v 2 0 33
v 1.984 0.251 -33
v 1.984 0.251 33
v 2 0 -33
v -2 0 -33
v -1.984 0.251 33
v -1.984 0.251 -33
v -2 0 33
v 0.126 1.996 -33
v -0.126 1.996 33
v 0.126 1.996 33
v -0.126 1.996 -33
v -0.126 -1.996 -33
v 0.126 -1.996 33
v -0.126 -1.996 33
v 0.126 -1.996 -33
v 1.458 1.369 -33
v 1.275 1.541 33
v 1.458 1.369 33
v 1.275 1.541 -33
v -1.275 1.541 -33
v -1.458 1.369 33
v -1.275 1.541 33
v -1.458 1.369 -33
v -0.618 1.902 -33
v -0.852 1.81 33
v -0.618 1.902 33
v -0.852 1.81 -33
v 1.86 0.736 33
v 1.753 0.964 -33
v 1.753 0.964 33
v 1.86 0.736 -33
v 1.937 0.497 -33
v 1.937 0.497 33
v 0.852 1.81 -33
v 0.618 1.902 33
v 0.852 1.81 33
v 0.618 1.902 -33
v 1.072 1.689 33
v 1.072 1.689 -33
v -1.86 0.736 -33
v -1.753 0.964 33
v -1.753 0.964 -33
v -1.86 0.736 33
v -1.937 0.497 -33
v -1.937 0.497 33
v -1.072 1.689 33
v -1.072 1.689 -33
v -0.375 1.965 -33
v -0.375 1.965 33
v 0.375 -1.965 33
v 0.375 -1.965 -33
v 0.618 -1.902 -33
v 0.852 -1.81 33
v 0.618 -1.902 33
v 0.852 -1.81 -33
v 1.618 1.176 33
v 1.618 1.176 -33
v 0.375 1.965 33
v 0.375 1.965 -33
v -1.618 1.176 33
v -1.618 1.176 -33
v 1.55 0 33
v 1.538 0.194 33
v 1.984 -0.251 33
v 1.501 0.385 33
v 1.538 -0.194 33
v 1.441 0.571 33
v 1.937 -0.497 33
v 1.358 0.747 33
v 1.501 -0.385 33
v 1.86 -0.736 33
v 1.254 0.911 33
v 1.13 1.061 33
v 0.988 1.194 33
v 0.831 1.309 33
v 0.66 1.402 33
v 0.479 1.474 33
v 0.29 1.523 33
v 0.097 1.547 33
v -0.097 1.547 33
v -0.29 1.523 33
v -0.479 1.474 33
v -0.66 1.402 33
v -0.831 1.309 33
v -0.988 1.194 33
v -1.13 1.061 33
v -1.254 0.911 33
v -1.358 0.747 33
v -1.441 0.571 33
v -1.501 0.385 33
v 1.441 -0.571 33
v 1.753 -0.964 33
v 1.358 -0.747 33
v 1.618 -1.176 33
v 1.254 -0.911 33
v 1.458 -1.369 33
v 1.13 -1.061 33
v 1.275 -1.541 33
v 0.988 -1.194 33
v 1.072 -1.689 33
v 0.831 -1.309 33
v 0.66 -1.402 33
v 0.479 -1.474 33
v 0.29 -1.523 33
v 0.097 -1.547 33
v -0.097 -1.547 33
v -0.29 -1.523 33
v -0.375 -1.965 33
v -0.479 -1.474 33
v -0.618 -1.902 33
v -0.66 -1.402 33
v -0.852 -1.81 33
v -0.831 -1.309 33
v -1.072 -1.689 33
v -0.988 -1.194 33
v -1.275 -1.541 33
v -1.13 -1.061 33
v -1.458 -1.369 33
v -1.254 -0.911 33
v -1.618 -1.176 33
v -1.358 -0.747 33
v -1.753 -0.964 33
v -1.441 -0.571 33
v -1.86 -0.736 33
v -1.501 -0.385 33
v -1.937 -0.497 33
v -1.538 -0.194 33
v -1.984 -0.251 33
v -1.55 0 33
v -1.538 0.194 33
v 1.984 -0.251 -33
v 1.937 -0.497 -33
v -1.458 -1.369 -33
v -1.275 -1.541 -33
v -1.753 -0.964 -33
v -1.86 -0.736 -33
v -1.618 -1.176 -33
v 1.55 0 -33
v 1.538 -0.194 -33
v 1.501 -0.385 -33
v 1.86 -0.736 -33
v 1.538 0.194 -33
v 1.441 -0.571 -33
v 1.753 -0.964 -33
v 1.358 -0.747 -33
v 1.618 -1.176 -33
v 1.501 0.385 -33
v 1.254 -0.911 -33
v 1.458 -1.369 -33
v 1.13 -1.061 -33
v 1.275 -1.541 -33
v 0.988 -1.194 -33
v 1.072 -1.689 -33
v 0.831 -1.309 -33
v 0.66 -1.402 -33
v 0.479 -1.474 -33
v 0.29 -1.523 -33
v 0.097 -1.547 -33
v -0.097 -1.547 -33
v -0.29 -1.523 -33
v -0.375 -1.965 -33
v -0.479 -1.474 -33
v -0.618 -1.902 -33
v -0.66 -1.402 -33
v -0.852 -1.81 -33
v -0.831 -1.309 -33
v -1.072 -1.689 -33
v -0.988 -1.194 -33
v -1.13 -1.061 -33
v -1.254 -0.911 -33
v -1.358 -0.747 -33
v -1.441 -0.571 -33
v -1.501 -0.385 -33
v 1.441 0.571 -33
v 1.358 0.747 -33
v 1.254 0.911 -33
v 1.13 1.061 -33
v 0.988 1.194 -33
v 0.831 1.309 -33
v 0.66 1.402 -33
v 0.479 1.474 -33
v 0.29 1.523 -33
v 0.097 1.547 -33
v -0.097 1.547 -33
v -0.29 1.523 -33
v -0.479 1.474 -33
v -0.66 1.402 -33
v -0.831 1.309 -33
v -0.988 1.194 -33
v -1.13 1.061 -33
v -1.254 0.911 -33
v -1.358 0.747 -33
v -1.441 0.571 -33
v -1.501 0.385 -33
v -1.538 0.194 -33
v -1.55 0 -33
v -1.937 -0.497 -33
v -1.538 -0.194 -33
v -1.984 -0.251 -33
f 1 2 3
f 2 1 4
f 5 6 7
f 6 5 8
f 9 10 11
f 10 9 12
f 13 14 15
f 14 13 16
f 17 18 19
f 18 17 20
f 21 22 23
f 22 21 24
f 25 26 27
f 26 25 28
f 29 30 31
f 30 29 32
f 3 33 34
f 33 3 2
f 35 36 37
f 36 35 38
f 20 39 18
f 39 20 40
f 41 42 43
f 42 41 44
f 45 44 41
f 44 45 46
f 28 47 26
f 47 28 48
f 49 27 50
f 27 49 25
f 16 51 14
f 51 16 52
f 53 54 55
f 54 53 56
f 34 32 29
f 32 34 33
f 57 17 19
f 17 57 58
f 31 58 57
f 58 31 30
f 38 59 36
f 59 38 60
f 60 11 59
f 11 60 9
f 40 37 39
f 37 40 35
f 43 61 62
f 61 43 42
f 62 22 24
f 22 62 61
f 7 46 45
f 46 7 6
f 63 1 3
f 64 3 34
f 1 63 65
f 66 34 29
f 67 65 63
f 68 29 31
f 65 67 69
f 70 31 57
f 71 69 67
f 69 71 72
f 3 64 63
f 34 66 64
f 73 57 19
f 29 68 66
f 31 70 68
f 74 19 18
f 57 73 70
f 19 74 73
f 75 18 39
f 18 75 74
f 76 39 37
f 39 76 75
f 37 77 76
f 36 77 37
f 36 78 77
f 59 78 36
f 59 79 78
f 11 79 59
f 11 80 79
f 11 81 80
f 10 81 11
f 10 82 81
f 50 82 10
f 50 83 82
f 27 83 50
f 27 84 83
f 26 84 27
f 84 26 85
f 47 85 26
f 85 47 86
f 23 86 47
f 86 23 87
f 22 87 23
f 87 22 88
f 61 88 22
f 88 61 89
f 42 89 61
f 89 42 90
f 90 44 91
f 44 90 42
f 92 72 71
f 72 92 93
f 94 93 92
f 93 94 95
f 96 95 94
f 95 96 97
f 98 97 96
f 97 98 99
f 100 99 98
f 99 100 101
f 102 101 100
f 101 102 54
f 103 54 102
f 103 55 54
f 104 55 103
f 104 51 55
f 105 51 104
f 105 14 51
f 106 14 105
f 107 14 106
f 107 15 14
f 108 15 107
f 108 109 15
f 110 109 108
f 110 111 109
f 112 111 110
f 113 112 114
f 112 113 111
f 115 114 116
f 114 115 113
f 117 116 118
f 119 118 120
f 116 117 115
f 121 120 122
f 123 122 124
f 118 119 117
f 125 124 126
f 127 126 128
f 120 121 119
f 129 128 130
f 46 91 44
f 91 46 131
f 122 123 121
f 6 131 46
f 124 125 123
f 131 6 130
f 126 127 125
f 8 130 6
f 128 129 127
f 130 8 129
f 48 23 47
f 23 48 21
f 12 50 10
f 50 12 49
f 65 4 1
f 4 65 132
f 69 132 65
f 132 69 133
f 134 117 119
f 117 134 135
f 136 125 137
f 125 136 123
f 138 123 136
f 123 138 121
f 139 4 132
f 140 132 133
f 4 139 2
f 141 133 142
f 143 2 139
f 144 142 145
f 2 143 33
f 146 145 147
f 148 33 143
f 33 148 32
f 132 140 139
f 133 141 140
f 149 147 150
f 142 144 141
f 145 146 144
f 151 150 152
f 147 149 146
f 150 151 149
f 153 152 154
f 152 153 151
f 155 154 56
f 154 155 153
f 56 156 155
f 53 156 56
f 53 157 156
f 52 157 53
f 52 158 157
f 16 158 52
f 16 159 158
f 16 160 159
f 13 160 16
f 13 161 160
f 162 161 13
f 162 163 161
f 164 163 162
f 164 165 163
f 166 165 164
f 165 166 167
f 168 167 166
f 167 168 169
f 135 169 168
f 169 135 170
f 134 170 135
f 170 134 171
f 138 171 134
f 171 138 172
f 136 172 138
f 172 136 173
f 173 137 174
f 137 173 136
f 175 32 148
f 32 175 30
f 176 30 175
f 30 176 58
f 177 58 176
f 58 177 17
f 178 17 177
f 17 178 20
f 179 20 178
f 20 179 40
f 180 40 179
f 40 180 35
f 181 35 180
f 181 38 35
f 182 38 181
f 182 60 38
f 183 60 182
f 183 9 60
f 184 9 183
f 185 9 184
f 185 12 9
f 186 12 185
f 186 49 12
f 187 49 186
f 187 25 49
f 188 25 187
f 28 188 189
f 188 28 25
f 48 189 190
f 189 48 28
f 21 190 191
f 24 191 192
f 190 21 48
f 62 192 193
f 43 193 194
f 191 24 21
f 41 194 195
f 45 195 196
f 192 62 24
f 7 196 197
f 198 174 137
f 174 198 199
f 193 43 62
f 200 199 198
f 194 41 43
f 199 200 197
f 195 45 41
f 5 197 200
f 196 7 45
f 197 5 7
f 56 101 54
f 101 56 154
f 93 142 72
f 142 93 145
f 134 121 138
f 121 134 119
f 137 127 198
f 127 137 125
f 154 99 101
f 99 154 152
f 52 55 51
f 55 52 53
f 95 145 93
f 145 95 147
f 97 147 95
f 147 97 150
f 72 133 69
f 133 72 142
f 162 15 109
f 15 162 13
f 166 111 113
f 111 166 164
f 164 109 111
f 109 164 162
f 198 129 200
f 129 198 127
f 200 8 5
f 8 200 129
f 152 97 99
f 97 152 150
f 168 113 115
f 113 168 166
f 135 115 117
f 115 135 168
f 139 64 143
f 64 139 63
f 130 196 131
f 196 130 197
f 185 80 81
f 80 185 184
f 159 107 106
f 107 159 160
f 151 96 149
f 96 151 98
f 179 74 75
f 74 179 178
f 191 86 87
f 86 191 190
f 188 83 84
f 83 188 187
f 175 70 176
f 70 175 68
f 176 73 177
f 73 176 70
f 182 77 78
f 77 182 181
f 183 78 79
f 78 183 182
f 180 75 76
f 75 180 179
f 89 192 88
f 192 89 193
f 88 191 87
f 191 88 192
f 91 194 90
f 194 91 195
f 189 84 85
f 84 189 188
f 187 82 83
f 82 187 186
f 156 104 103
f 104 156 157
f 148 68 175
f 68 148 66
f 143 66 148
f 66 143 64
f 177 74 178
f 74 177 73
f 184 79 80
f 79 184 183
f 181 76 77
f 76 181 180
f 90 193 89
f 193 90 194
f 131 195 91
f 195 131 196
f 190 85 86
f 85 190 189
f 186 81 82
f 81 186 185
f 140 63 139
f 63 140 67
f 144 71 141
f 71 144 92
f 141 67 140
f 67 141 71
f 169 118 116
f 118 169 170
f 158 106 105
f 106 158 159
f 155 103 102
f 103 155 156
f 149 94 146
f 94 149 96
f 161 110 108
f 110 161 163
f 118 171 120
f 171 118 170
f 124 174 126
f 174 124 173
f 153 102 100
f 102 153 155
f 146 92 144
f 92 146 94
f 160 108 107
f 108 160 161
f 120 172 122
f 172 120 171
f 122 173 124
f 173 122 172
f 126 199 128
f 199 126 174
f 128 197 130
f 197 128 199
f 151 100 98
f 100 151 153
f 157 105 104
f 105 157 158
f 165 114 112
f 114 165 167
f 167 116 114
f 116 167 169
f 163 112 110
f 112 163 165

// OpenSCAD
$fn = 50;


difference() {
	union() {
		translate(v = [0, 0, -33.0000000000]) {
			cylinder(h = 66, r = 2.0000000000);
		}
	}
	union() {
		translate(v = [0, 0, -100.0000000000]) {
			cylinder(h = 200, r = 1.5500000000);
		}
	}
}
